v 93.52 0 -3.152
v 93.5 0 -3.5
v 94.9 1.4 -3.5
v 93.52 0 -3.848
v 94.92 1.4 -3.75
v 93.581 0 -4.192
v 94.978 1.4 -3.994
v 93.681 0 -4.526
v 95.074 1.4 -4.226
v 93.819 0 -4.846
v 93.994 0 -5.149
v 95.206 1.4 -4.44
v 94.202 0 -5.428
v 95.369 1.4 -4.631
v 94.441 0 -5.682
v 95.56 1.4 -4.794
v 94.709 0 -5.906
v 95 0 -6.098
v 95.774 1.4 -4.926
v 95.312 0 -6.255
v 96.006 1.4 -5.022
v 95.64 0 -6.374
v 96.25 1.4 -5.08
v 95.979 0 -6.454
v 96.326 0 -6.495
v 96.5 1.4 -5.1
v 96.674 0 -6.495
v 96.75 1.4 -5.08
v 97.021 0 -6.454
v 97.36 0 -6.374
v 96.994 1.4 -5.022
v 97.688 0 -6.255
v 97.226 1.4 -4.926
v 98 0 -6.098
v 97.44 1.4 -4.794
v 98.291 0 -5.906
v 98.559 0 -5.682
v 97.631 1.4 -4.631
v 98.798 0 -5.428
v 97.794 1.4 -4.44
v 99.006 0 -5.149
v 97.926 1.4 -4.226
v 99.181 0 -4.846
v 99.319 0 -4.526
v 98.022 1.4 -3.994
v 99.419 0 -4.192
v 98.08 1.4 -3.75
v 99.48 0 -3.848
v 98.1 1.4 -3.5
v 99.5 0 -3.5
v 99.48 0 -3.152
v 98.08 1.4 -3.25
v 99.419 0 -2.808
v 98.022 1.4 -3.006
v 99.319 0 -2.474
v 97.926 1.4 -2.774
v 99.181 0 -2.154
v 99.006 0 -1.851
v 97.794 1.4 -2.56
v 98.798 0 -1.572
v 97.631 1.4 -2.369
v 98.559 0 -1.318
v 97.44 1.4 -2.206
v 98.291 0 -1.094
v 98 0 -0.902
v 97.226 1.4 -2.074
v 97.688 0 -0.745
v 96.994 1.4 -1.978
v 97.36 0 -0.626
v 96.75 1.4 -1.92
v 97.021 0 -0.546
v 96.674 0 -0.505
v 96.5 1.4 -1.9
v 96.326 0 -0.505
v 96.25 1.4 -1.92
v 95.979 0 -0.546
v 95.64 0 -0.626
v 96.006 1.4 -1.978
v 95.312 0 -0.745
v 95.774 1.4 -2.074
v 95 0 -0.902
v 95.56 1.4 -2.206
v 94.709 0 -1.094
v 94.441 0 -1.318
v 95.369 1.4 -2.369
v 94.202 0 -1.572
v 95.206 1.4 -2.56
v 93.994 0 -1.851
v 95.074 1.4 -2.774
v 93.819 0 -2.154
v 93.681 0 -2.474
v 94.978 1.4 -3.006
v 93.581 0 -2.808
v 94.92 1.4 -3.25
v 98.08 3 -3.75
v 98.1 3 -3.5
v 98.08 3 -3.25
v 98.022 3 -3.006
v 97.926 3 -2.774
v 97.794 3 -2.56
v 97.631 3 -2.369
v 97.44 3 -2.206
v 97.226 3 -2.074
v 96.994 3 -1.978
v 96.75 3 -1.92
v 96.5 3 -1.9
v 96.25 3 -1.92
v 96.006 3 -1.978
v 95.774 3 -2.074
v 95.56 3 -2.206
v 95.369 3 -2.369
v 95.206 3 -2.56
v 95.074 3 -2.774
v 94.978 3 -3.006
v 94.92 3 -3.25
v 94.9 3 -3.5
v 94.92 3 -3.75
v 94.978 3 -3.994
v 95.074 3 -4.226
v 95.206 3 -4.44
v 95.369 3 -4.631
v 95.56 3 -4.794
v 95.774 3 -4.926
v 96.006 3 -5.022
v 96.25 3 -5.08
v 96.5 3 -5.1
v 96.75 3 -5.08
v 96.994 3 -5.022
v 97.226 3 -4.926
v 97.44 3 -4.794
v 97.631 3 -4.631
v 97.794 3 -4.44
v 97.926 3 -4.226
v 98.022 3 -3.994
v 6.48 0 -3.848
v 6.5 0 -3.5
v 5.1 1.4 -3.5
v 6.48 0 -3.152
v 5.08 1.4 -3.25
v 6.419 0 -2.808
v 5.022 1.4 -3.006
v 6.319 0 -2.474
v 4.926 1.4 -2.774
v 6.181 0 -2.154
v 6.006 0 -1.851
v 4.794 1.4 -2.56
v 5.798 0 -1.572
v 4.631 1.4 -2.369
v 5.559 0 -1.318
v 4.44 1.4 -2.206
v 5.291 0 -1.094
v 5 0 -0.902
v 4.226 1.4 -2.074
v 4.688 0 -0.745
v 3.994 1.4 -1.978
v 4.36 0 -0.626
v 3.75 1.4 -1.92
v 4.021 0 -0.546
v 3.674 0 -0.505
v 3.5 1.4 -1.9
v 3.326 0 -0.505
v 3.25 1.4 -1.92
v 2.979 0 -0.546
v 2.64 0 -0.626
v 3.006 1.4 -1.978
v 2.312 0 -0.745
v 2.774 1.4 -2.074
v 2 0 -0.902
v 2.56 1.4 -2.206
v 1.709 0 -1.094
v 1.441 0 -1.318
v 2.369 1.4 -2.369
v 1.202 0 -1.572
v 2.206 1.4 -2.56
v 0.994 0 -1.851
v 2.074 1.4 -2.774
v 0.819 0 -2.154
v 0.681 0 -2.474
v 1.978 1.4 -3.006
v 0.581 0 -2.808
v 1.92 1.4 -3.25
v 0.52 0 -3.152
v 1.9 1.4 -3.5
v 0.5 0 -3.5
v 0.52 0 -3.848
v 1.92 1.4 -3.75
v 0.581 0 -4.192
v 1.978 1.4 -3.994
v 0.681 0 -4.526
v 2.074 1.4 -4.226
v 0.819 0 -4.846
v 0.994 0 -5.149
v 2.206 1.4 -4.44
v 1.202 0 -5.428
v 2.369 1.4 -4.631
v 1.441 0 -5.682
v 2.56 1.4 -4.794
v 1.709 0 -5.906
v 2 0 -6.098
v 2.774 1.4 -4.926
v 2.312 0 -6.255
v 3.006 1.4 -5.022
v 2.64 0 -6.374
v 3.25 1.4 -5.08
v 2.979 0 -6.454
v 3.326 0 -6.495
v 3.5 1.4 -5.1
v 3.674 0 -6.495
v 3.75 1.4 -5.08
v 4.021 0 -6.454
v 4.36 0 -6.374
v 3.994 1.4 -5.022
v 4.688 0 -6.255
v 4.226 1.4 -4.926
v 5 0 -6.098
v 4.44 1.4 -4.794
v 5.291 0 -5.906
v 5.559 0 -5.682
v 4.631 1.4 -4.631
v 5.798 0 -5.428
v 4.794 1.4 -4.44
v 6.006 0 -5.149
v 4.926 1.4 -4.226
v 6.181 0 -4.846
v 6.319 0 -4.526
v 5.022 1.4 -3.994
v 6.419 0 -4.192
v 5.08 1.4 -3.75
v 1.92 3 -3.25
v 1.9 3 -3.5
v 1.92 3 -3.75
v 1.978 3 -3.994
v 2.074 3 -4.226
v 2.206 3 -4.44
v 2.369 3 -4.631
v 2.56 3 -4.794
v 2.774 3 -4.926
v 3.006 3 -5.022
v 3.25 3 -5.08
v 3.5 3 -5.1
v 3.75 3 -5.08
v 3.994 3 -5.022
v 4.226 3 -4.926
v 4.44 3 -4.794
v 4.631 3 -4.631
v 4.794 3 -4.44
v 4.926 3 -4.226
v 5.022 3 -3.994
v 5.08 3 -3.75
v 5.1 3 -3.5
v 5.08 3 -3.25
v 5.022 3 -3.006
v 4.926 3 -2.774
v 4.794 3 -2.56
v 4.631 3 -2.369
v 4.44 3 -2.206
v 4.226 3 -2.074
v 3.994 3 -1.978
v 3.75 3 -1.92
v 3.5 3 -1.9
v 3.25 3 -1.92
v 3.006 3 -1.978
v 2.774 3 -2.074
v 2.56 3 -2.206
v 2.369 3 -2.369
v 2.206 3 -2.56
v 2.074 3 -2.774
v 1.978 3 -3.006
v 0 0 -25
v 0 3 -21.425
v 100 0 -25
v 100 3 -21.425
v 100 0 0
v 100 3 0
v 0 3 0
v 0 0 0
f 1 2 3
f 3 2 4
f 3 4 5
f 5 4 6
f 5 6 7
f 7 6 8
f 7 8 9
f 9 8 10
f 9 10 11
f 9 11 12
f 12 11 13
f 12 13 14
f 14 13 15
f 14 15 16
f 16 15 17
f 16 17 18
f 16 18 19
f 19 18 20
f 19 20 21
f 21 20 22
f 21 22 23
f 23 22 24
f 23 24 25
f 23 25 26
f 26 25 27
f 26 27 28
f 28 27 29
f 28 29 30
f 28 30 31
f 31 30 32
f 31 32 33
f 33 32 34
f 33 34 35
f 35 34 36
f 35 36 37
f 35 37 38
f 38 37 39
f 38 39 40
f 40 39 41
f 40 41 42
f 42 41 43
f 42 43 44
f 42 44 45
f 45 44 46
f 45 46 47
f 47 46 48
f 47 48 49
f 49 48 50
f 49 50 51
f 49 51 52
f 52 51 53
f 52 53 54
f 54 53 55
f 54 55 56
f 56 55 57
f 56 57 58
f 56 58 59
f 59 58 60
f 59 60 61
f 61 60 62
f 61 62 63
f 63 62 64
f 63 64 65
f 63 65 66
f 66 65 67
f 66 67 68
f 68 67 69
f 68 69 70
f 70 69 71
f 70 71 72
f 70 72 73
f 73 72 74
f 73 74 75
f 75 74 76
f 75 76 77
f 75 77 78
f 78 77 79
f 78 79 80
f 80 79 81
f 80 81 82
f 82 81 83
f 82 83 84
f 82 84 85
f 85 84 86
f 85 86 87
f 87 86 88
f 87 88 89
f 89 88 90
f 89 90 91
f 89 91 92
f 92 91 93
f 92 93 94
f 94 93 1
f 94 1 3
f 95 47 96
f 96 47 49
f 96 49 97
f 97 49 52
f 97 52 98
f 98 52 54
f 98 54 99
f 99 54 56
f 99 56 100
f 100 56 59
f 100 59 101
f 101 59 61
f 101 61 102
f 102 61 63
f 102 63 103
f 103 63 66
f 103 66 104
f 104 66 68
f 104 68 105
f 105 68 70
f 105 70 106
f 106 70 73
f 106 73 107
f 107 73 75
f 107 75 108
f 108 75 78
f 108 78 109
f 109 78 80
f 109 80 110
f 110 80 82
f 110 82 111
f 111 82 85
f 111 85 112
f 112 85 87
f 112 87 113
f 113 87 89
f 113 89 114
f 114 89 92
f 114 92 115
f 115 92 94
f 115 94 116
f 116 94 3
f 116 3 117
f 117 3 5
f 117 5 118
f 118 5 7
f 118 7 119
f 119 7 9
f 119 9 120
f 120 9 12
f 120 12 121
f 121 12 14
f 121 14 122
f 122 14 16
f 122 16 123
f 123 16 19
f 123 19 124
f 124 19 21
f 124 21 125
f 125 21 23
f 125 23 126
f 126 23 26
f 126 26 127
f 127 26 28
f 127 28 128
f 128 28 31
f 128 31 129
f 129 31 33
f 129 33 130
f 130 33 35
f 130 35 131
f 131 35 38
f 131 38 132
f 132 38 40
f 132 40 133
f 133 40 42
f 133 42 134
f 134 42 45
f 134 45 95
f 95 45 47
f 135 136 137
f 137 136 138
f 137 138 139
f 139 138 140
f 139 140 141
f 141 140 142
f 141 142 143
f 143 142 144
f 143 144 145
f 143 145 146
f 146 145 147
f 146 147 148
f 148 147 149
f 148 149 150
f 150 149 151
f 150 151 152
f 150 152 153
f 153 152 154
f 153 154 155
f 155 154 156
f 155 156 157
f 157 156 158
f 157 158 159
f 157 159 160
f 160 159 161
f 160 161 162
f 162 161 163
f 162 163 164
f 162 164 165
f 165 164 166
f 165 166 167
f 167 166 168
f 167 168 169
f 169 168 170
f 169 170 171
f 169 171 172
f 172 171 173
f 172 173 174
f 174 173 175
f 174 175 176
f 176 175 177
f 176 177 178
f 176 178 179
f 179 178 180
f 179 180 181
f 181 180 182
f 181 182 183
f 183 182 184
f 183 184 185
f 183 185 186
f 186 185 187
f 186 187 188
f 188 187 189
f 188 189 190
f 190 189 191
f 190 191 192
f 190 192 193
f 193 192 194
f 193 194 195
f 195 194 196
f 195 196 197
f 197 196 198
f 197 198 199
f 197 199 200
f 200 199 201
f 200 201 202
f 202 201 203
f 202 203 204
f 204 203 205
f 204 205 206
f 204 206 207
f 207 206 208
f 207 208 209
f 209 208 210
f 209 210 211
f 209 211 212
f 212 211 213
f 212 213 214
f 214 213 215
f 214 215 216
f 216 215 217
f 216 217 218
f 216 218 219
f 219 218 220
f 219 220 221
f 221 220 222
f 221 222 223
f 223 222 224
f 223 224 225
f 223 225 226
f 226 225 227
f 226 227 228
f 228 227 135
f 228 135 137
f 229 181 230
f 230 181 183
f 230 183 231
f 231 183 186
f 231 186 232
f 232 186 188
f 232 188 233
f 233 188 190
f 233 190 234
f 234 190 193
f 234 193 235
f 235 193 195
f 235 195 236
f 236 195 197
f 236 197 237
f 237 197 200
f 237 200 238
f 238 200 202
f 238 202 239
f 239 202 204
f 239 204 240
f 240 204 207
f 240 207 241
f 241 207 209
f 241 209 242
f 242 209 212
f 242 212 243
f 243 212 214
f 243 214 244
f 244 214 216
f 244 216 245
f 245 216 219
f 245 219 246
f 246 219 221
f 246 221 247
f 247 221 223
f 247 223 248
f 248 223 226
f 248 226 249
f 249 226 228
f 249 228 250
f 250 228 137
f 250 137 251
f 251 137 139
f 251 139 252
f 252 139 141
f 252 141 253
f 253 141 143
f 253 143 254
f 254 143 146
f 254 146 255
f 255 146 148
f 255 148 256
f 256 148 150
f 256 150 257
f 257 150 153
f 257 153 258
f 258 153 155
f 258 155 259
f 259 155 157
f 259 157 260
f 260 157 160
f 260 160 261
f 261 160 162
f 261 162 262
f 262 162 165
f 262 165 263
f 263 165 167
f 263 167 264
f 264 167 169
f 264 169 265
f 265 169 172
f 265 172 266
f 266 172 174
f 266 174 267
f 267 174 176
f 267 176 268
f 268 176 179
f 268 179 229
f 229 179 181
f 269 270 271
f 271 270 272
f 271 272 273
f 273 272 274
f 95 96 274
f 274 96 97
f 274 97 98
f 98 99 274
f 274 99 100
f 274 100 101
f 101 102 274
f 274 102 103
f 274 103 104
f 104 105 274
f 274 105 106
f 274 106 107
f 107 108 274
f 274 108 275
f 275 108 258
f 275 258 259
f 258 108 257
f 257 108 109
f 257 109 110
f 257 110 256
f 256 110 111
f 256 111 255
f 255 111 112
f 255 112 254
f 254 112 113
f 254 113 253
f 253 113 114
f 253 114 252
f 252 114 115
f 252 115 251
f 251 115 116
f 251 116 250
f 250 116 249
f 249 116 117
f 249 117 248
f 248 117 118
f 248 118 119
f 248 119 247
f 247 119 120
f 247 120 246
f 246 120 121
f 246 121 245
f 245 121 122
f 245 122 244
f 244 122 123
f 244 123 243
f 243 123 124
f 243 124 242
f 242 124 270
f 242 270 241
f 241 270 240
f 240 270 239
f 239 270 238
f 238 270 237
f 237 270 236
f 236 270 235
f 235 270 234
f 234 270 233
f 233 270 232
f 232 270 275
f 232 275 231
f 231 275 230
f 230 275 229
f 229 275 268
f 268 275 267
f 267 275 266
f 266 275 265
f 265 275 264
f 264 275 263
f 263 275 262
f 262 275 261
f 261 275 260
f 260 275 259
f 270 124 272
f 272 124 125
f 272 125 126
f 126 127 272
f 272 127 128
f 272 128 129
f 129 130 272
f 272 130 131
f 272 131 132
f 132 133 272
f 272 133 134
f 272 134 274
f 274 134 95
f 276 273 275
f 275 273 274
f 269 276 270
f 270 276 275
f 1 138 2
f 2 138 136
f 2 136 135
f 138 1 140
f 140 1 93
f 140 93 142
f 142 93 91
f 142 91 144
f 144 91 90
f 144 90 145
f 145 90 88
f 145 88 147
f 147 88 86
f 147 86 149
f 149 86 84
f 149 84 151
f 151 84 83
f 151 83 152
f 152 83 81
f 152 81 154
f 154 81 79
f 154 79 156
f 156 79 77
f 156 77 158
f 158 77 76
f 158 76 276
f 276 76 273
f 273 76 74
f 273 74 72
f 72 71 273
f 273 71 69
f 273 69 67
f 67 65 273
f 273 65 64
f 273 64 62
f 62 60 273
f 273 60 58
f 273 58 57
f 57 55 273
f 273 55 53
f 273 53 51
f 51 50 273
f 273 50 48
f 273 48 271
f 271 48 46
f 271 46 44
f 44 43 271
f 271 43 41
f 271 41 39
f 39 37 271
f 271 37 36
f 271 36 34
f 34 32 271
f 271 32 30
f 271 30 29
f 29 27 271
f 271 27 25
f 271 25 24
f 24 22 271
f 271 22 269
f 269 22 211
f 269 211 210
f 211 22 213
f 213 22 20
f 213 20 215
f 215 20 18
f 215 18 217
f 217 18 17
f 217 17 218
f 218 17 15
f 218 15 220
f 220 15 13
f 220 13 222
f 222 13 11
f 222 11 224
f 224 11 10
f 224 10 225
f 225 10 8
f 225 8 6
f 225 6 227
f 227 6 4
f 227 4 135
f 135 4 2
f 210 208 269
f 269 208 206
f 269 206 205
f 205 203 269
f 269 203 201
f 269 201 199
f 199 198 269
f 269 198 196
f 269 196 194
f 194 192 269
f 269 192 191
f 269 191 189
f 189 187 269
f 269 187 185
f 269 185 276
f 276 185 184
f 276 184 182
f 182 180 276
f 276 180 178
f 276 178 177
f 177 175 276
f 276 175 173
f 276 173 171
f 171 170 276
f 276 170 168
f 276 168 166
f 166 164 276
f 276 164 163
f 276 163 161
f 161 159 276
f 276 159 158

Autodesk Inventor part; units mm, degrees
ref_plane "YZ Plane" through (0, 0, 0) normal (1, 0, 0) x (0, 1, 0)
ref_plane "XZ Plane" through (0, 0, 0) normal (0, 1, 0) x (-1, 0, 0)
ref_plane "XY Plane" through (0, 0, 0) normal (0, 0, 1) x (1, 0, 0)
sketch "Szkic1" plane through (0, 0, 0) normal (0, 1, 0) x (-1, 0, 0)
  line L0 (0, 0) -> (-100, 0)
  line L1 (-100, 0) -> (-100, -25)
  line L2 (-100, -25) -> (0, -25)
  line L3 (0, -25) -> (0, 0)
  dimension "d0" = 100
  dimension "d1" = 25
extrude "Wyciągnięcie proste1" add sketch "Szkic1" along normal blind 3
sketch "Szkic2" plane through (100, 0, 0) normal (1, 0, 0) x (0, 0, -1)
  line L0 (0, 0) -> (25, 0) projected
  line L1 (25, 0) -> (25, 3) projected
  line L2 (0, 3) -> (25, 3) projected
  line L3 (0, 0) -> (0, 3) projected
  line L4 (25, 0) -> (21.4247, 3)
  dimension "d4" = 40
extrude "Wyciągnięcie proste2" cut sketch "Szkic2" against normal through all contours L4 L2 L1
sketch "Szkic3" plane through (0, 0, 0) normal (0, -1, 0) x (1, 0, 0)
  line L0 (0, -25) -> (0, 0) projected
  line L1 (100, 0) -> (100, -25) projected
  line L2 (0, 0) -> (100, 0) projected
  line L3 (0, -25) -> (0, 0) projected
  line L4 (100, -25) -> (0, -25) projected
  point P0 (3.5, -3.5)
  dimension "d7" = 3.5
  dimension "d8" = 3.5
hole "Otwór1" at (3.5, 0, -3.5) direction (0, 1, 0) diameter 3.2 end through all countersink diameter 6 countersink angle 90
ref_plane "Płaszczyzna konstrukcyjna1" through (50, 0, 0) normal (-1, 0, 0) x (0, 0, 1)
mirror "Odbij1" about plane through (50, 0, 0) normal (-1, 0, 0) of "Otwór1"
properties part number "nóź" material "Stal, odlew"
